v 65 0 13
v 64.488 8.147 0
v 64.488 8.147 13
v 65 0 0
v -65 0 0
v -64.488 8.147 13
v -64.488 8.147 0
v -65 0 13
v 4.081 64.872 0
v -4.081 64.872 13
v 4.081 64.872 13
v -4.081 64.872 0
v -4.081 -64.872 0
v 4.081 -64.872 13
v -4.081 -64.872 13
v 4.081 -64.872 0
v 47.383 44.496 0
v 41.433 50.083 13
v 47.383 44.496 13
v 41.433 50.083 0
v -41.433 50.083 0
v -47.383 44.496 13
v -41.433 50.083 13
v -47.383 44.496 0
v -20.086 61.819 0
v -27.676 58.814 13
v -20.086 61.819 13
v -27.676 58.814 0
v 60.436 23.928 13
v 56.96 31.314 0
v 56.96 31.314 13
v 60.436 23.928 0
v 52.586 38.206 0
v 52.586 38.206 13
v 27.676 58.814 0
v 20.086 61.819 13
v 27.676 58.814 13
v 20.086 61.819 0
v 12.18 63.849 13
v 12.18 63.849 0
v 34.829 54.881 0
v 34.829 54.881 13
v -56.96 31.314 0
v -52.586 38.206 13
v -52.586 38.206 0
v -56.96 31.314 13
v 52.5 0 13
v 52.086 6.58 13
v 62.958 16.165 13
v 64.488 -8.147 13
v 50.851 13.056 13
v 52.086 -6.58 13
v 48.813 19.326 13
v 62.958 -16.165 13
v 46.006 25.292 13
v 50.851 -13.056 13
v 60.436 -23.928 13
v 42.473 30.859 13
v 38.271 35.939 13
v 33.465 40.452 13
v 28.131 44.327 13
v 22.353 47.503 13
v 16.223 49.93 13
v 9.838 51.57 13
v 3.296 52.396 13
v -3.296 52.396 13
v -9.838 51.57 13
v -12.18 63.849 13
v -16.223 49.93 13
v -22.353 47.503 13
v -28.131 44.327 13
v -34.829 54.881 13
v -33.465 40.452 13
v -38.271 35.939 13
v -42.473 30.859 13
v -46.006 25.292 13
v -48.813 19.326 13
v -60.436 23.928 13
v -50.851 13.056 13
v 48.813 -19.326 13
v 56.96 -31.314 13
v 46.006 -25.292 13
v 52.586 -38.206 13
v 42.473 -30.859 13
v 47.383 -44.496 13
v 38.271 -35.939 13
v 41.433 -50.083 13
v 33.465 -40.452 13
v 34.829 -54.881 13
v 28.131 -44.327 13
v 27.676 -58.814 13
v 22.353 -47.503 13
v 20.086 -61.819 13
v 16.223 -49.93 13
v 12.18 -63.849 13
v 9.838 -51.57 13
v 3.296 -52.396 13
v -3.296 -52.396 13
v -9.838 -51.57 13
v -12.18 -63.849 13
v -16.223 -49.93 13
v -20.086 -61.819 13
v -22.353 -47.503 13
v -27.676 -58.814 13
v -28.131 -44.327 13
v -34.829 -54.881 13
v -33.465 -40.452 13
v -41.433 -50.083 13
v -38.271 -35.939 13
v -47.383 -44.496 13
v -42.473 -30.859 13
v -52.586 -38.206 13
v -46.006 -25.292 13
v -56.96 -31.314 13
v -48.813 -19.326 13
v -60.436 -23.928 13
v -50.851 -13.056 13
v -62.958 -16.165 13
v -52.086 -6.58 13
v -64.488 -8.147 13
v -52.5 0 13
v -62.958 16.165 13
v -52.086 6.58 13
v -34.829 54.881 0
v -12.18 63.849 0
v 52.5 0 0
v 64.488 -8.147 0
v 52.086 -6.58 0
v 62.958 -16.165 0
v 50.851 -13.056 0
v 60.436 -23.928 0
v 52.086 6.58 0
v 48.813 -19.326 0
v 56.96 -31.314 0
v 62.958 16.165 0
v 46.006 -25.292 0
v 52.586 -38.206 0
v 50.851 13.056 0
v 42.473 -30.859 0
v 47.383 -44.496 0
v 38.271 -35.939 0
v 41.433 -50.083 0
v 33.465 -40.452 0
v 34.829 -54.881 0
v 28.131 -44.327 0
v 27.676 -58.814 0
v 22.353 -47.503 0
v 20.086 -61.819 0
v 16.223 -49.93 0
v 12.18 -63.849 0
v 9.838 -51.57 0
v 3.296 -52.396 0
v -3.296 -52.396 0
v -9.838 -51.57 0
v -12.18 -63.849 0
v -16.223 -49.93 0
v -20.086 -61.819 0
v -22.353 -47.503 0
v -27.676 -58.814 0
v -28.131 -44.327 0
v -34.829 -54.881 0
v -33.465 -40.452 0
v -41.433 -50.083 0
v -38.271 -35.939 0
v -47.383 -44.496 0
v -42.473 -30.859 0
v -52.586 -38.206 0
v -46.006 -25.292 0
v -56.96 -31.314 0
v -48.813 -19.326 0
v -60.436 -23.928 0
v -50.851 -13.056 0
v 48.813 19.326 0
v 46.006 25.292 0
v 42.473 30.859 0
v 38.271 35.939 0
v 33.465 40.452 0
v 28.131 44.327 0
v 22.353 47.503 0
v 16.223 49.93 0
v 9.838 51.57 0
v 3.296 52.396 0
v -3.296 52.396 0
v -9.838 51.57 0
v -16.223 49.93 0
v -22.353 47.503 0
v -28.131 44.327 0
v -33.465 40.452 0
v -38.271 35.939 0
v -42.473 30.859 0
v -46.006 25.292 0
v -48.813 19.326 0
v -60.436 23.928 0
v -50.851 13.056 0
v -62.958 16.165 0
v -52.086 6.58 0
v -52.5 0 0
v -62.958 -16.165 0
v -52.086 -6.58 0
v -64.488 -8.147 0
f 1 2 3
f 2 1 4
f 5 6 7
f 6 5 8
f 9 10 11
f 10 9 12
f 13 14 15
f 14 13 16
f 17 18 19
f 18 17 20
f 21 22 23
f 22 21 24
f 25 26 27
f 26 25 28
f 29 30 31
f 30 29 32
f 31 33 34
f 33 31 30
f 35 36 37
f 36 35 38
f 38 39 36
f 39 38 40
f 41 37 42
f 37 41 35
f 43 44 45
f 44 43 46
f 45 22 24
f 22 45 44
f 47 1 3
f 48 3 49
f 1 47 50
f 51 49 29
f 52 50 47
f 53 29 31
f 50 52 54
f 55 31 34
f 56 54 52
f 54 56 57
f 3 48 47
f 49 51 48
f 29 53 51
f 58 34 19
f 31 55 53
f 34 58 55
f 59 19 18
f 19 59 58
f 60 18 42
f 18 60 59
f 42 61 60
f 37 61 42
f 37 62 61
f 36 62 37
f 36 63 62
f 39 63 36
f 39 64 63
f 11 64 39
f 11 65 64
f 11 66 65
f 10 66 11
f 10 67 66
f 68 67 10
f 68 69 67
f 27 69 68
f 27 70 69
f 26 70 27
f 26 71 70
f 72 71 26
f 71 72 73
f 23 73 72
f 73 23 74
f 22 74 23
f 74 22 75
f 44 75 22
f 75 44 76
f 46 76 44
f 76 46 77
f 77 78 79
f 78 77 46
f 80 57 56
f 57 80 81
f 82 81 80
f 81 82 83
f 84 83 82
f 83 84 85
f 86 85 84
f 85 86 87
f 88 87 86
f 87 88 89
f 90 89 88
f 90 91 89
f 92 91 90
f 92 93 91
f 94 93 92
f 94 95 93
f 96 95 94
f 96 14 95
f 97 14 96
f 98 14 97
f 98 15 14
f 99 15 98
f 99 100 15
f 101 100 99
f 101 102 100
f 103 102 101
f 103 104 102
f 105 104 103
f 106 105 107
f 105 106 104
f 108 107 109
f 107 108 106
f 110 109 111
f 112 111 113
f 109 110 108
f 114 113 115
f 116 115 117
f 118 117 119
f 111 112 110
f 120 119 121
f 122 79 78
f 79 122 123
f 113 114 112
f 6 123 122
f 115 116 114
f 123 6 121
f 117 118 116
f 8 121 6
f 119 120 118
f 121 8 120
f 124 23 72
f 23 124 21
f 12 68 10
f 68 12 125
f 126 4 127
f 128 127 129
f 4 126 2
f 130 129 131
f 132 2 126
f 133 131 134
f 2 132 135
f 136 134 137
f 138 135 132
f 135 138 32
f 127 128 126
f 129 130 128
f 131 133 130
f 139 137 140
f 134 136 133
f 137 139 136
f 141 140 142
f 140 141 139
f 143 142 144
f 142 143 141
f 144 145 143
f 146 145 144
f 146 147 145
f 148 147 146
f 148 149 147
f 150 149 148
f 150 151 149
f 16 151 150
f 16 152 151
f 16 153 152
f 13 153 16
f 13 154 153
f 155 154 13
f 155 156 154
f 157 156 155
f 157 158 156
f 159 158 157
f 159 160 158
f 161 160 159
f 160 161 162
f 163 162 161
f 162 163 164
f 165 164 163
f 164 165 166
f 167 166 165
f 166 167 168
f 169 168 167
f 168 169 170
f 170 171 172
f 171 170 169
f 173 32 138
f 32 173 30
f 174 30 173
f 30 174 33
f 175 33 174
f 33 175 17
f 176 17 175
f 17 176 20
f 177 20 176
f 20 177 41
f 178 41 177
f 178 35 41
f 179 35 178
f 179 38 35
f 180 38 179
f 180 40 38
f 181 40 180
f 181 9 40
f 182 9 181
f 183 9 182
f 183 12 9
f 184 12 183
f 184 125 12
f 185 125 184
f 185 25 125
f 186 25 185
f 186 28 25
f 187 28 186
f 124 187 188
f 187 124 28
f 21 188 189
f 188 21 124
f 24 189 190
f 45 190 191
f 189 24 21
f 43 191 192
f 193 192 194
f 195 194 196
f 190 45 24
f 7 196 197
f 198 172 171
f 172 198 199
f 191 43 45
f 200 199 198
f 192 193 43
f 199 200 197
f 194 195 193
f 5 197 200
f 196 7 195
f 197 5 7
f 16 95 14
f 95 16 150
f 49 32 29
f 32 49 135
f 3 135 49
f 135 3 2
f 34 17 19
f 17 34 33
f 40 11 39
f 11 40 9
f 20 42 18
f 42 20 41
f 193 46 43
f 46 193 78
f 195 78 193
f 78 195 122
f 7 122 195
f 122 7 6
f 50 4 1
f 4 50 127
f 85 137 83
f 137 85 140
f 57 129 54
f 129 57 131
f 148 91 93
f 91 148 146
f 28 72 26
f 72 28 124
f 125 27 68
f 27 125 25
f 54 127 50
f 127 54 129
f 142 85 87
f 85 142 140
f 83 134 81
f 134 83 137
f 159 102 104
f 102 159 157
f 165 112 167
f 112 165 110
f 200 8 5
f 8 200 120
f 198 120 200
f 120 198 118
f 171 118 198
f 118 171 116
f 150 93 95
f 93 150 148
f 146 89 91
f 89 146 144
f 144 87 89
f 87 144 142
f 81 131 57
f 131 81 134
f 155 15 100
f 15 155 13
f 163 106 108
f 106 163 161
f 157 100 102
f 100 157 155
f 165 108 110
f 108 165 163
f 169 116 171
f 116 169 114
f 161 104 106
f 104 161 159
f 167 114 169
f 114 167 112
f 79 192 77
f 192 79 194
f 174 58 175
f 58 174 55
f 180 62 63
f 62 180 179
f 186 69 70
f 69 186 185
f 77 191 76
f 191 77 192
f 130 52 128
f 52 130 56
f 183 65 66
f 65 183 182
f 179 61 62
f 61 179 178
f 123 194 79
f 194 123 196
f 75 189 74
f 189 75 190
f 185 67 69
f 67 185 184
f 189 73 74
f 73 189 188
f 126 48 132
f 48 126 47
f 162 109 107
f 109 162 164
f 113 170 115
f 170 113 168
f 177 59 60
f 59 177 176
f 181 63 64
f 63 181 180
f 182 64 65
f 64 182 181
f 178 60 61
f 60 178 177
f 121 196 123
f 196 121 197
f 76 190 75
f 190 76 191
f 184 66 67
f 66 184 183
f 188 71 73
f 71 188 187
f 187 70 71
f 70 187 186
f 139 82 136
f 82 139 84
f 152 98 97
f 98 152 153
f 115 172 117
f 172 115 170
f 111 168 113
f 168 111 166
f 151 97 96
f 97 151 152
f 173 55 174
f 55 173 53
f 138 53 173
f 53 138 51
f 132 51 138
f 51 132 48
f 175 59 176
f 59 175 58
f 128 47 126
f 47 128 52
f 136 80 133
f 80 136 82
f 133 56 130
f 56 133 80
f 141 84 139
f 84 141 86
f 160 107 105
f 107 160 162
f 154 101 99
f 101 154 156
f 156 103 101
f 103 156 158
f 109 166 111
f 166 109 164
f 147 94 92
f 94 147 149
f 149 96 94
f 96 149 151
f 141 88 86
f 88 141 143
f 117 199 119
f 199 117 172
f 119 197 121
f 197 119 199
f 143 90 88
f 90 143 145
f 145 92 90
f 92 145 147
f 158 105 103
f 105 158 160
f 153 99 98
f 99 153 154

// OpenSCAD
$fn = 50;


difference() {
	union() {
		translate(v = [0, 0, 0]) {
			rotate(a = [0, 0, 0]) {
				cylinder(h = 13, r = 65.0000000000);
			}
		}
	}
	union() {
		translate(v = [0, 0, 0]) {
			rotate(a = [0, 0, 0]) {
				cylinder(h = 13, r = 52.5000000000);
			}
		}
	}
}
